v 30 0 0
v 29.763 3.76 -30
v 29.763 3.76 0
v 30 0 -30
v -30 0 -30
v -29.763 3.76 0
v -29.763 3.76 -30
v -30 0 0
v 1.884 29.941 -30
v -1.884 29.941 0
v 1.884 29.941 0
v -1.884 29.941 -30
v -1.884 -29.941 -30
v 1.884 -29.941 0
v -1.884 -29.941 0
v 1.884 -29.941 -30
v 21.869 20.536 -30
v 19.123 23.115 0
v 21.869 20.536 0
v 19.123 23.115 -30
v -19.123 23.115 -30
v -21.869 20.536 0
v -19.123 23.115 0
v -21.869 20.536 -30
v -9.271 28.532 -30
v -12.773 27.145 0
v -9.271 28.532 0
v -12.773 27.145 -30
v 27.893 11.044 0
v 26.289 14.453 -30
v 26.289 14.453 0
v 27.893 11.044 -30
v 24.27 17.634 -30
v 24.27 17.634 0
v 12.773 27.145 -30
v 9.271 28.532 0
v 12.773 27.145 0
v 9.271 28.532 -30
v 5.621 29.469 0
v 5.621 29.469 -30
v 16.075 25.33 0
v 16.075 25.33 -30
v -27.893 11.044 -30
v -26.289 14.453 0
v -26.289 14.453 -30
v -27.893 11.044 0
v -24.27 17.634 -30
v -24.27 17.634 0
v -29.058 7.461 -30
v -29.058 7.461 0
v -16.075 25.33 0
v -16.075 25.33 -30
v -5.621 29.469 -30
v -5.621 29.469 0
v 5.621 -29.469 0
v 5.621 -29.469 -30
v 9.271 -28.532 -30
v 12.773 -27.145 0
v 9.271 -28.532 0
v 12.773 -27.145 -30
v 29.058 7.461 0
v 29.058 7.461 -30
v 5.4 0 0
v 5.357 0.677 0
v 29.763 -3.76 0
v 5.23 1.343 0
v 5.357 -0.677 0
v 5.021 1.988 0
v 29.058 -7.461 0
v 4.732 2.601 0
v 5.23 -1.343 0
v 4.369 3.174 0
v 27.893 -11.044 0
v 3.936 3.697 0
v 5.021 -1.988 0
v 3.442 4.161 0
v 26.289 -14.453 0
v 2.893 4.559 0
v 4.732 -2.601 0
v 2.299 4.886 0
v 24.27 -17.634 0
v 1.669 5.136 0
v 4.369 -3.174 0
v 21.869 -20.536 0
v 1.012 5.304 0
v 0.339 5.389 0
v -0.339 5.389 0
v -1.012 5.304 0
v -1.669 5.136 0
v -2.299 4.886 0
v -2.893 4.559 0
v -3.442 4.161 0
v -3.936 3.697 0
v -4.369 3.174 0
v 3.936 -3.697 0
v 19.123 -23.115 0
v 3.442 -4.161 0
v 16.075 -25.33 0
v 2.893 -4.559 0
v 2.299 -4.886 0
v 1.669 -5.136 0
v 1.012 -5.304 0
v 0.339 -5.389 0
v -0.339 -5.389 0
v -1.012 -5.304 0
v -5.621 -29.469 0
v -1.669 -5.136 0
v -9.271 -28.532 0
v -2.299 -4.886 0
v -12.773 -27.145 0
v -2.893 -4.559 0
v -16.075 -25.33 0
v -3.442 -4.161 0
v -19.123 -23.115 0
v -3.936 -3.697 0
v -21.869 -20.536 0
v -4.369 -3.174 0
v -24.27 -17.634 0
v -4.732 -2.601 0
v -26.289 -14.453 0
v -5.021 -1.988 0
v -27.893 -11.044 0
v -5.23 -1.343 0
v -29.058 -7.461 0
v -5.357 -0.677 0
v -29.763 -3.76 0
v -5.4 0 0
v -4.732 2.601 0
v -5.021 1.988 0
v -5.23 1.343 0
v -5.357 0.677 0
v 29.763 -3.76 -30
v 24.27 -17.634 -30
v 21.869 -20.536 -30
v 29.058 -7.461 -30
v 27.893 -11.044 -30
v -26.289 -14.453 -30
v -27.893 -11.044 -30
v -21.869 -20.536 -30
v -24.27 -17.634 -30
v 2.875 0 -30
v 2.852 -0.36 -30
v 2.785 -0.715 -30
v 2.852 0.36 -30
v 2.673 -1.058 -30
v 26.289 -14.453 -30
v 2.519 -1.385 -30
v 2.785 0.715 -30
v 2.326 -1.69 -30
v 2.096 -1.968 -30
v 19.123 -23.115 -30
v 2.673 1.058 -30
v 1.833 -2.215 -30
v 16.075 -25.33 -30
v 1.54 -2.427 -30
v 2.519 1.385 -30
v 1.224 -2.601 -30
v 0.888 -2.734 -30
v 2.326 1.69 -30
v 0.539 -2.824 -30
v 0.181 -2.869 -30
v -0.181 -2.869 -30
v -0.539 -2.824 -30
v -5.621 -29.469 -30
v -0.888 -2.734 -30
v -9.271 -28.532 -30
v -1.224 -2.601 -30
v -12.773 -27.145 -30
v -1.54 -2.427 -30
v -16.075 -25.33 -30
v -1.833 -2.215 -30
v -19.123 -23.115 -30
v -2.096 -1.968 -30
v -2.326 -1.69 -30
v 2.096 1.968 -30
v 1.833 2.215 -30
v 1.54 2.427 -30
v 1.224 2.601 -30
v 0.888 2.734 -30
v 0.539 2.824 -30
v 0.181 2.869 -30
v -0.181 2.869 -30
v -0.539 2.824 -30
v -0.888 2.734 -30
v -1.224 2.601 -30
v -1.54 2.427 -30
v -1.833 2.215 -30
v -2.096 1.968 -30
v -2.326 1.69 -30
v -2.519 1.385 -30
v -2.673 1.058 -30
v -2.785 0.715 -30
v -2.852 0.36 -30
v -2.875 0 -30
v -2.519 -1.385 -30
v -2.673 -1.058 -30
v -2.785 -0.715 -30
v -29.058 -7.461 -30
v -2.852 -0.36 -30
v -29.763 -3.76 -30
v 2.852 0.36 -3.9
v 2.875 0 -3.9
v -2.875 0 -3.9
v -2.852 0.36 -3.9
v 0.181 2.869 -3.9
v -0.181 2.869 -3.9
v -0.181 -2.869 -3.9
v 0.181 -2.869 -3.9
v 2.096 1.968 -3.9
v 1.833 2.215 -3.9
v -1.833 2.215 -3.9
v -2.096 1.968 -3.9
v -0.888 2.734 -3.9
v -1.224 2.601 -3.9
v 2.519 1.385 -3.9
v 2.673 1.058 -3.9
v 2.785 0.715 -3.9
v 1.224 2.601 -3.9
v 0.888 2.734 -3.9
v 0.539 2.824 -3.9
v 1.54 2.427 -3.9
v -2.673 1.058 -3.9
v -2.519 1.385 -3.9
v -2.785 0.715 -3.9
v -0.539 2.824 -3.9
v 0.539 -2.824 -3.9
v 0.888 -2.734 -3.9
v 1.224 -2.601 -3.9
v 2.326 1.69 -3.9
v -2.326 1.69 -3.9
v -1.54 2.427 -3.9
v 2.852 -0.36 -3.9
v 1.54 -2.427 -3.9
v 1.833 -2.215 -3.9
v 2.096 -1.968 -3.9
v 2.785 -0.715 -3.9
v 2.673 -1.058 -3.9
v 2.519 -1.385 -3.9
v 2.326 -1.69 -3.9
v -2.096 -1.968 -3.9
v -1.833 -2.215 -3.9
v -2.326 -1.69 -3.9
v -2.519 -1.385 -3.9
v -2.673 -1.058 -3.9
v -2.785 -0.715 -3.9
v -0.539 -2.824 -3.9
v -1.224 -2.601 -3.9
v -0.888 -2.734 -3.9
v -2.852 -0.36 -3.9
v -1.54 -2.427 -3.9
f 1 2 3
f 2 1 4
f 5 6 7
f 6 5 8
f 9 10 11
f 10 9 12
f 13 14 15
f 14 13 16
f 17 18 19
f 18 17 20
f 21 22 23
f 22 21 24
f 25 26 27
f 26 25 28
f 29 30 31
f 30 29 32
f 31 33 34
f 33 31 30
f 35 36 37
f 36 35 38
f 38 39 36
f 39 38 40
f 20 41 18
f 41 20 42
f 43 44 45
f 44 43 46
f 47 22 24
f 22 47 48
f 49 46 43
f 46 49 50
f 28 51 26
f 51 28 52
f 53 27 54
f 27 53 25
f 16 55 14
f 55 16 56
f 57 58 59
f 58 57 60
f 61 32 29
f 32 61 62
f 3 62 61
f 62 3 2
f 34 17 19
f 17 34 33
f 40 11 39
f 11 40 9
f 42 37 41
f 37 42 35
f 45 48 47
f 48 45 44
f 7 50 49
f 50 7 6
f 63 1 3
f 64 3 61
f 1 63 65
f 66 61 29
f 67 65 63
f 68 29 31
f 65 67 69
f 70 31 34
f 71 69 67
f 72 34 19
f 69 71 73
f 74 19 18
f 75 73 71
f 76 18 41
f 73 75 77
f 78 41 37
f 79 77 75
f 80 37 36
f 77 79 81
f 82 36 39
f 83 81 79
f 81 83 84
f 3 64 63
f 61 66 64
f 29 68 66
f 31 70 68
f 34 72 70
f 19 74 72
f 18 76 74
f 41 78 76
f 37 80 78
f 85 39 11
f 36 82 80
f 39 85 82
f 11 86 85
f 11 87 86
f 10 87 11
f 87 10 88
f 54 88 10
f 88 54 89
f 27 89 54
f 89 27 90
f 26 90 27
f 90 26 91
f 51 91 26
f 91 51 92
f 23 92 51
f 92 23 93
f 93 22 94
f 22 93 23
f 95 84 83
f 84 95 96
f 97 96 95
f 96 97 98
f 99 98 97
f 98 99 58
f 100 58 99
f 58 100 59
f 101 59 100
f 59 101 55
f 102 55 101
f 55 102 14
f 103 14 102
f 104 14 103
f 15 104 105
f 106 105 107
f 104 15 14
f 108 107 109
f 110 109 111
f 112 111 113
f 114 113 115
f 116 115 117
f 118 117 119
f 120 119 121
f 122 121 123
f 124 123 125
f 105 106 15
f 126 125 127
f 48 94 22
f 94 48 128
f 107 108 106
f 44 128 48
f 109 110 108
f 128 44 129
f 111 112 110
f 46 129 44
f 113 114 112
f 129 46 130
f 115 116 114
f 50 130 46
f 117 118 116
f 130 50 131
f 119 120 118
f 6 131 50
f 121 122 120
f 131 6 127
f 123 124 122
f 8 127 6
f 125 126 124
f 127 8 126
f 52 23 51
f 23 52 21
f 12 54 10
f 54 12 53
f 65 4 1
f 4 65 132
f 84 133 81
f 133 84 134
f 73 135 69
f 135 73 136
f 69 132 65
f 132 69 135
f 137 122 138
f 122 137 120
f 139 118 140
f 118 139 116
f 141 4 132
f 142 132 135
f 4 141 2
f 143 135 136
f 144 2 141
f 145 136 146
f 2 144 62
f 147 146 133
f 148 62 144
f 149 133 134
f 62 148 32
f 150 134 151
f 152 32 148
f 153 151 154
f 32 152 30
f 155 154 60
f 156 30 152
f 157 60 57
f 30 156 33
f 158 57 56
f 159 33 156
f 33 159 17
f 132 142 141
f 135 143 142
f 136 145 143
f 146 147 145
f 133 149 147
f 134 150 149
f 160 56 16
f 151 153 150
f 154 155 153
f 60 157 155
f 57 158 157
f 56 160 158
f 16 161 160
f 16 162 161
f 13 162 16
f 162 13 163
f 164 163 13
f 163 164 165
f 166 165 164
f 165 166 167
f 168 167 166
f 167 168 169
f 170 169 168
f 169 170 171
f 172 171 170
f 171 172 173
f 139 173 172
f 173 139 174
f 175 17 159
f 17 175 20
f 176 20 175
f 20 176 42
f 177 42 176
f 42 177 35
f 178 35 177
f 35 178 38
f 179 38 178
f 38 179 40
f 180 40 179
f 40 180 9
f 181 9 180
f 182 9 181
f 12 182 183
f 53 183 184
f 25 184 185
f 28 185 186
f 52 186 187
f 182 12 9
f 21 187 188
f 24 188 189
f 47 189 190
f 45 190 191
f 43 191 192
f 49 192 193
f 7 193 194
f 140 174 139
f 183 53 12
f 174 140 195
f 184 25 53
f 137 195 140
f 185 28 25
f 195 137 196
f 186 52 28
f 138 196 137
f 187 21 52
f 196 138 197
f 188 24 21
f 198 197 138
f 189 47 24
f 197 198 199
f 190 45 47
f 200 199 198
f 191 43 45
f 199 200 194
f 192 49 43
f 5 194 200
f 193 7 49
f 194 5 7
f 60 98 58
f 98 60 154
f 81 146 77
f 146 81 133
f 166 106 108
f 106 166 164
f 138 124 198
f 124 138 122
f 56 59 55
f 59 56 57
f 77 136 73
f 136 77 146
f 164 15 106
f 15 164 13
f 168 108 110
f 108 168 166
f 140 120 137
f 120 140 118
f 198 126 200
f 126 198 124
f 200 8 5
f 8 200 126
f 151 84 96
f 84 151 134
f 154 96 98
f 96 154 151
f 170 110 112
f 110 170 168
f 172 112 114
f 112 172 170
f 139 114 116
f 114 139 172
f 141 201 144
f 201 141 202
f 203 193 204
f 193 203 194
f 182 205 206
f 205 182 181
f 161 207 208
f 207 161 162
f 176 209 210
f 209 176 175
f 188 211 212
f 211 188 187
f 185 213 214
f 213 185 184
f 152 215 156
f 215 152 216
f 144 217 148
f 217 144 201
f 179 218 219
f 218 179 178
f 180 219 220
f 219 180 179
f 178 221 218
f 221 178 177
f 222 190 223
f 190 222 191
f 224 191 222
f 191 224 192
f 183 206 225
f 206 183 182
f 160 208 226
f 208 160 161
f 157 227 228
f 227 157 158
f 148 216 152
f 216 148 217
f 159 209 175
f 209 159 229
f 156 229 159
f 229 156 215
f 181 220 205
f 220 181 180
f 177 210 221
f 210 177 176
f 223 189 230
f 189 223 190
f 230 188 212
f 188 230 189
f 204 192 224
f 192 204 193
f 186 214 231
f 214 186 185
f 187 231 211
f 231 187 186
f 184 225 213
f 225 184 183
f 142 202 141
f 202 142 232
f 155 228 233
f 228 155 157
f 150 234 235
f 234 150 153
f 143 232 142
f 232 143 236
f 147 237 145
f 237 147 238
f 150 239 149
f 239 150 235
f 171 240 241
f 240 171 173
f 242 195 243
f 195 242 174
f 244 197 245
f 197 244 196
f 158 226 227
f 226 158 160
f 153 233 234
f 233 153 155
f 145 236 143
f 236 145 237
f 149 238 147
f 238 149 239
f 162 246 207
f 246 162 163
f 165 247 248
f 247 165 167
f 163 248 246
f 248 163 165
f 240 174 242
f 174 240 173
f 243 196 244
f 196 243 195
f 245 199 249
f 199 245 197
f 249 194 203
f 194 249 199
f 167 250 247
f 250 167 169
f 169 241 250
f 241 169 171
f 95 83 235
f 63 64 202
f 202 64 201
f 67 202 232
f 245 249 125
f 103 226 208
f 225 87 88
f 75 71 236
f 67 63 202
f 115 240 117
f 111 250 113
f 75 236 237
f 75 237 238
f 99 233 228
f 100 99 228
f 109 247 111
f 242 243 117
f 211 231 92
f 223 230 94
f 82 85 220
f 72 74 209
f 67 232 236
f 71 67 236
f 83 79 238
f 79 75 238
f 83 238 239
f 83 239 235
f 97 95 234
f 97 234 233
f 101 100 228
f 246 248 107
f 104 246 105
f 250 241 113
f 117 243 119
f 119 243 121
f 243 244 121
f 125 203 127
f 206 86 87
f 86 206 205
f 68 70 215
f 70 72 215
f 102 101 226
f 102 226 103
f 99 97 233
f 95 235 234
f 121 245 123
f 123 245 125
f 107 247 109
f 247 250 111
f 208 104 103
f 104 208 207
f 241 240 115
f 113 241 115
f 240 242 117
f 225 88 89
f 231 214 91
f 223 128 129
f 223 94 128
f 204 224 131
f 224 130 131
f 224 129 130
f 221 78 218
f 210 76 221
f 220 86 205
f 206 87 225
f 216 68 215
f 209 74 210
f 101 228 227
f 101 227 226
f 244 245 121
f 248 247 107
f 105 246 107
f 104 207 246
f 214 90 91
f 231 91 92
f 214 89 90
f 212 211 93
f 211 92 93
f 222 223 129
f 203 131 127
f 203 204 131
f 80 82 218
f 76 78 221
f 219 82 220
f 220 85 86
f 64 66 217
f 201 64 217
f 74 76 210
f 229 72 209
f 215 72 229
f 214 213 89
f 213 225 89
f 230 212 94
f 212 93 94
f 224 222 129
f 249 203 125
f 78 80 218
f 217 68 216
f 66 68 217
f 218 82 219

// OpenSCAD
$fn = 50;

difference() {
	union() {
		translate(v = [0, 0, -30.0]) {
			cylinder(h = 30, r = 30.0);
		}
		#translate(v = [0, 0, -33.0]) {
			cylinder(h = 33, r = 2.875);
		}
	}
	union() {
		translate(v = [0, 0, 0]) {
			rotate(a = [0, 0, 0]) {
				difference() {
					union() {
						translate(v = [0, 0, -33.0]) {
							cylinder(h = 33, r = 2.6);
						}
						translate(v = [0, 0, -3.9]) {
							cylinder(h = 3.9, r1 = 2.875, r2 = 5.4);
						}
						translate(v = [0, 0, -33.0]) {
							cylinder(h = 33, r = 2.875);
						}
						translate(v = [0, 0, -33.0]) {
							cylinder(h = 33, r = 2.6);
						}
					}
					union();
				}
			}
		}
	}
}
